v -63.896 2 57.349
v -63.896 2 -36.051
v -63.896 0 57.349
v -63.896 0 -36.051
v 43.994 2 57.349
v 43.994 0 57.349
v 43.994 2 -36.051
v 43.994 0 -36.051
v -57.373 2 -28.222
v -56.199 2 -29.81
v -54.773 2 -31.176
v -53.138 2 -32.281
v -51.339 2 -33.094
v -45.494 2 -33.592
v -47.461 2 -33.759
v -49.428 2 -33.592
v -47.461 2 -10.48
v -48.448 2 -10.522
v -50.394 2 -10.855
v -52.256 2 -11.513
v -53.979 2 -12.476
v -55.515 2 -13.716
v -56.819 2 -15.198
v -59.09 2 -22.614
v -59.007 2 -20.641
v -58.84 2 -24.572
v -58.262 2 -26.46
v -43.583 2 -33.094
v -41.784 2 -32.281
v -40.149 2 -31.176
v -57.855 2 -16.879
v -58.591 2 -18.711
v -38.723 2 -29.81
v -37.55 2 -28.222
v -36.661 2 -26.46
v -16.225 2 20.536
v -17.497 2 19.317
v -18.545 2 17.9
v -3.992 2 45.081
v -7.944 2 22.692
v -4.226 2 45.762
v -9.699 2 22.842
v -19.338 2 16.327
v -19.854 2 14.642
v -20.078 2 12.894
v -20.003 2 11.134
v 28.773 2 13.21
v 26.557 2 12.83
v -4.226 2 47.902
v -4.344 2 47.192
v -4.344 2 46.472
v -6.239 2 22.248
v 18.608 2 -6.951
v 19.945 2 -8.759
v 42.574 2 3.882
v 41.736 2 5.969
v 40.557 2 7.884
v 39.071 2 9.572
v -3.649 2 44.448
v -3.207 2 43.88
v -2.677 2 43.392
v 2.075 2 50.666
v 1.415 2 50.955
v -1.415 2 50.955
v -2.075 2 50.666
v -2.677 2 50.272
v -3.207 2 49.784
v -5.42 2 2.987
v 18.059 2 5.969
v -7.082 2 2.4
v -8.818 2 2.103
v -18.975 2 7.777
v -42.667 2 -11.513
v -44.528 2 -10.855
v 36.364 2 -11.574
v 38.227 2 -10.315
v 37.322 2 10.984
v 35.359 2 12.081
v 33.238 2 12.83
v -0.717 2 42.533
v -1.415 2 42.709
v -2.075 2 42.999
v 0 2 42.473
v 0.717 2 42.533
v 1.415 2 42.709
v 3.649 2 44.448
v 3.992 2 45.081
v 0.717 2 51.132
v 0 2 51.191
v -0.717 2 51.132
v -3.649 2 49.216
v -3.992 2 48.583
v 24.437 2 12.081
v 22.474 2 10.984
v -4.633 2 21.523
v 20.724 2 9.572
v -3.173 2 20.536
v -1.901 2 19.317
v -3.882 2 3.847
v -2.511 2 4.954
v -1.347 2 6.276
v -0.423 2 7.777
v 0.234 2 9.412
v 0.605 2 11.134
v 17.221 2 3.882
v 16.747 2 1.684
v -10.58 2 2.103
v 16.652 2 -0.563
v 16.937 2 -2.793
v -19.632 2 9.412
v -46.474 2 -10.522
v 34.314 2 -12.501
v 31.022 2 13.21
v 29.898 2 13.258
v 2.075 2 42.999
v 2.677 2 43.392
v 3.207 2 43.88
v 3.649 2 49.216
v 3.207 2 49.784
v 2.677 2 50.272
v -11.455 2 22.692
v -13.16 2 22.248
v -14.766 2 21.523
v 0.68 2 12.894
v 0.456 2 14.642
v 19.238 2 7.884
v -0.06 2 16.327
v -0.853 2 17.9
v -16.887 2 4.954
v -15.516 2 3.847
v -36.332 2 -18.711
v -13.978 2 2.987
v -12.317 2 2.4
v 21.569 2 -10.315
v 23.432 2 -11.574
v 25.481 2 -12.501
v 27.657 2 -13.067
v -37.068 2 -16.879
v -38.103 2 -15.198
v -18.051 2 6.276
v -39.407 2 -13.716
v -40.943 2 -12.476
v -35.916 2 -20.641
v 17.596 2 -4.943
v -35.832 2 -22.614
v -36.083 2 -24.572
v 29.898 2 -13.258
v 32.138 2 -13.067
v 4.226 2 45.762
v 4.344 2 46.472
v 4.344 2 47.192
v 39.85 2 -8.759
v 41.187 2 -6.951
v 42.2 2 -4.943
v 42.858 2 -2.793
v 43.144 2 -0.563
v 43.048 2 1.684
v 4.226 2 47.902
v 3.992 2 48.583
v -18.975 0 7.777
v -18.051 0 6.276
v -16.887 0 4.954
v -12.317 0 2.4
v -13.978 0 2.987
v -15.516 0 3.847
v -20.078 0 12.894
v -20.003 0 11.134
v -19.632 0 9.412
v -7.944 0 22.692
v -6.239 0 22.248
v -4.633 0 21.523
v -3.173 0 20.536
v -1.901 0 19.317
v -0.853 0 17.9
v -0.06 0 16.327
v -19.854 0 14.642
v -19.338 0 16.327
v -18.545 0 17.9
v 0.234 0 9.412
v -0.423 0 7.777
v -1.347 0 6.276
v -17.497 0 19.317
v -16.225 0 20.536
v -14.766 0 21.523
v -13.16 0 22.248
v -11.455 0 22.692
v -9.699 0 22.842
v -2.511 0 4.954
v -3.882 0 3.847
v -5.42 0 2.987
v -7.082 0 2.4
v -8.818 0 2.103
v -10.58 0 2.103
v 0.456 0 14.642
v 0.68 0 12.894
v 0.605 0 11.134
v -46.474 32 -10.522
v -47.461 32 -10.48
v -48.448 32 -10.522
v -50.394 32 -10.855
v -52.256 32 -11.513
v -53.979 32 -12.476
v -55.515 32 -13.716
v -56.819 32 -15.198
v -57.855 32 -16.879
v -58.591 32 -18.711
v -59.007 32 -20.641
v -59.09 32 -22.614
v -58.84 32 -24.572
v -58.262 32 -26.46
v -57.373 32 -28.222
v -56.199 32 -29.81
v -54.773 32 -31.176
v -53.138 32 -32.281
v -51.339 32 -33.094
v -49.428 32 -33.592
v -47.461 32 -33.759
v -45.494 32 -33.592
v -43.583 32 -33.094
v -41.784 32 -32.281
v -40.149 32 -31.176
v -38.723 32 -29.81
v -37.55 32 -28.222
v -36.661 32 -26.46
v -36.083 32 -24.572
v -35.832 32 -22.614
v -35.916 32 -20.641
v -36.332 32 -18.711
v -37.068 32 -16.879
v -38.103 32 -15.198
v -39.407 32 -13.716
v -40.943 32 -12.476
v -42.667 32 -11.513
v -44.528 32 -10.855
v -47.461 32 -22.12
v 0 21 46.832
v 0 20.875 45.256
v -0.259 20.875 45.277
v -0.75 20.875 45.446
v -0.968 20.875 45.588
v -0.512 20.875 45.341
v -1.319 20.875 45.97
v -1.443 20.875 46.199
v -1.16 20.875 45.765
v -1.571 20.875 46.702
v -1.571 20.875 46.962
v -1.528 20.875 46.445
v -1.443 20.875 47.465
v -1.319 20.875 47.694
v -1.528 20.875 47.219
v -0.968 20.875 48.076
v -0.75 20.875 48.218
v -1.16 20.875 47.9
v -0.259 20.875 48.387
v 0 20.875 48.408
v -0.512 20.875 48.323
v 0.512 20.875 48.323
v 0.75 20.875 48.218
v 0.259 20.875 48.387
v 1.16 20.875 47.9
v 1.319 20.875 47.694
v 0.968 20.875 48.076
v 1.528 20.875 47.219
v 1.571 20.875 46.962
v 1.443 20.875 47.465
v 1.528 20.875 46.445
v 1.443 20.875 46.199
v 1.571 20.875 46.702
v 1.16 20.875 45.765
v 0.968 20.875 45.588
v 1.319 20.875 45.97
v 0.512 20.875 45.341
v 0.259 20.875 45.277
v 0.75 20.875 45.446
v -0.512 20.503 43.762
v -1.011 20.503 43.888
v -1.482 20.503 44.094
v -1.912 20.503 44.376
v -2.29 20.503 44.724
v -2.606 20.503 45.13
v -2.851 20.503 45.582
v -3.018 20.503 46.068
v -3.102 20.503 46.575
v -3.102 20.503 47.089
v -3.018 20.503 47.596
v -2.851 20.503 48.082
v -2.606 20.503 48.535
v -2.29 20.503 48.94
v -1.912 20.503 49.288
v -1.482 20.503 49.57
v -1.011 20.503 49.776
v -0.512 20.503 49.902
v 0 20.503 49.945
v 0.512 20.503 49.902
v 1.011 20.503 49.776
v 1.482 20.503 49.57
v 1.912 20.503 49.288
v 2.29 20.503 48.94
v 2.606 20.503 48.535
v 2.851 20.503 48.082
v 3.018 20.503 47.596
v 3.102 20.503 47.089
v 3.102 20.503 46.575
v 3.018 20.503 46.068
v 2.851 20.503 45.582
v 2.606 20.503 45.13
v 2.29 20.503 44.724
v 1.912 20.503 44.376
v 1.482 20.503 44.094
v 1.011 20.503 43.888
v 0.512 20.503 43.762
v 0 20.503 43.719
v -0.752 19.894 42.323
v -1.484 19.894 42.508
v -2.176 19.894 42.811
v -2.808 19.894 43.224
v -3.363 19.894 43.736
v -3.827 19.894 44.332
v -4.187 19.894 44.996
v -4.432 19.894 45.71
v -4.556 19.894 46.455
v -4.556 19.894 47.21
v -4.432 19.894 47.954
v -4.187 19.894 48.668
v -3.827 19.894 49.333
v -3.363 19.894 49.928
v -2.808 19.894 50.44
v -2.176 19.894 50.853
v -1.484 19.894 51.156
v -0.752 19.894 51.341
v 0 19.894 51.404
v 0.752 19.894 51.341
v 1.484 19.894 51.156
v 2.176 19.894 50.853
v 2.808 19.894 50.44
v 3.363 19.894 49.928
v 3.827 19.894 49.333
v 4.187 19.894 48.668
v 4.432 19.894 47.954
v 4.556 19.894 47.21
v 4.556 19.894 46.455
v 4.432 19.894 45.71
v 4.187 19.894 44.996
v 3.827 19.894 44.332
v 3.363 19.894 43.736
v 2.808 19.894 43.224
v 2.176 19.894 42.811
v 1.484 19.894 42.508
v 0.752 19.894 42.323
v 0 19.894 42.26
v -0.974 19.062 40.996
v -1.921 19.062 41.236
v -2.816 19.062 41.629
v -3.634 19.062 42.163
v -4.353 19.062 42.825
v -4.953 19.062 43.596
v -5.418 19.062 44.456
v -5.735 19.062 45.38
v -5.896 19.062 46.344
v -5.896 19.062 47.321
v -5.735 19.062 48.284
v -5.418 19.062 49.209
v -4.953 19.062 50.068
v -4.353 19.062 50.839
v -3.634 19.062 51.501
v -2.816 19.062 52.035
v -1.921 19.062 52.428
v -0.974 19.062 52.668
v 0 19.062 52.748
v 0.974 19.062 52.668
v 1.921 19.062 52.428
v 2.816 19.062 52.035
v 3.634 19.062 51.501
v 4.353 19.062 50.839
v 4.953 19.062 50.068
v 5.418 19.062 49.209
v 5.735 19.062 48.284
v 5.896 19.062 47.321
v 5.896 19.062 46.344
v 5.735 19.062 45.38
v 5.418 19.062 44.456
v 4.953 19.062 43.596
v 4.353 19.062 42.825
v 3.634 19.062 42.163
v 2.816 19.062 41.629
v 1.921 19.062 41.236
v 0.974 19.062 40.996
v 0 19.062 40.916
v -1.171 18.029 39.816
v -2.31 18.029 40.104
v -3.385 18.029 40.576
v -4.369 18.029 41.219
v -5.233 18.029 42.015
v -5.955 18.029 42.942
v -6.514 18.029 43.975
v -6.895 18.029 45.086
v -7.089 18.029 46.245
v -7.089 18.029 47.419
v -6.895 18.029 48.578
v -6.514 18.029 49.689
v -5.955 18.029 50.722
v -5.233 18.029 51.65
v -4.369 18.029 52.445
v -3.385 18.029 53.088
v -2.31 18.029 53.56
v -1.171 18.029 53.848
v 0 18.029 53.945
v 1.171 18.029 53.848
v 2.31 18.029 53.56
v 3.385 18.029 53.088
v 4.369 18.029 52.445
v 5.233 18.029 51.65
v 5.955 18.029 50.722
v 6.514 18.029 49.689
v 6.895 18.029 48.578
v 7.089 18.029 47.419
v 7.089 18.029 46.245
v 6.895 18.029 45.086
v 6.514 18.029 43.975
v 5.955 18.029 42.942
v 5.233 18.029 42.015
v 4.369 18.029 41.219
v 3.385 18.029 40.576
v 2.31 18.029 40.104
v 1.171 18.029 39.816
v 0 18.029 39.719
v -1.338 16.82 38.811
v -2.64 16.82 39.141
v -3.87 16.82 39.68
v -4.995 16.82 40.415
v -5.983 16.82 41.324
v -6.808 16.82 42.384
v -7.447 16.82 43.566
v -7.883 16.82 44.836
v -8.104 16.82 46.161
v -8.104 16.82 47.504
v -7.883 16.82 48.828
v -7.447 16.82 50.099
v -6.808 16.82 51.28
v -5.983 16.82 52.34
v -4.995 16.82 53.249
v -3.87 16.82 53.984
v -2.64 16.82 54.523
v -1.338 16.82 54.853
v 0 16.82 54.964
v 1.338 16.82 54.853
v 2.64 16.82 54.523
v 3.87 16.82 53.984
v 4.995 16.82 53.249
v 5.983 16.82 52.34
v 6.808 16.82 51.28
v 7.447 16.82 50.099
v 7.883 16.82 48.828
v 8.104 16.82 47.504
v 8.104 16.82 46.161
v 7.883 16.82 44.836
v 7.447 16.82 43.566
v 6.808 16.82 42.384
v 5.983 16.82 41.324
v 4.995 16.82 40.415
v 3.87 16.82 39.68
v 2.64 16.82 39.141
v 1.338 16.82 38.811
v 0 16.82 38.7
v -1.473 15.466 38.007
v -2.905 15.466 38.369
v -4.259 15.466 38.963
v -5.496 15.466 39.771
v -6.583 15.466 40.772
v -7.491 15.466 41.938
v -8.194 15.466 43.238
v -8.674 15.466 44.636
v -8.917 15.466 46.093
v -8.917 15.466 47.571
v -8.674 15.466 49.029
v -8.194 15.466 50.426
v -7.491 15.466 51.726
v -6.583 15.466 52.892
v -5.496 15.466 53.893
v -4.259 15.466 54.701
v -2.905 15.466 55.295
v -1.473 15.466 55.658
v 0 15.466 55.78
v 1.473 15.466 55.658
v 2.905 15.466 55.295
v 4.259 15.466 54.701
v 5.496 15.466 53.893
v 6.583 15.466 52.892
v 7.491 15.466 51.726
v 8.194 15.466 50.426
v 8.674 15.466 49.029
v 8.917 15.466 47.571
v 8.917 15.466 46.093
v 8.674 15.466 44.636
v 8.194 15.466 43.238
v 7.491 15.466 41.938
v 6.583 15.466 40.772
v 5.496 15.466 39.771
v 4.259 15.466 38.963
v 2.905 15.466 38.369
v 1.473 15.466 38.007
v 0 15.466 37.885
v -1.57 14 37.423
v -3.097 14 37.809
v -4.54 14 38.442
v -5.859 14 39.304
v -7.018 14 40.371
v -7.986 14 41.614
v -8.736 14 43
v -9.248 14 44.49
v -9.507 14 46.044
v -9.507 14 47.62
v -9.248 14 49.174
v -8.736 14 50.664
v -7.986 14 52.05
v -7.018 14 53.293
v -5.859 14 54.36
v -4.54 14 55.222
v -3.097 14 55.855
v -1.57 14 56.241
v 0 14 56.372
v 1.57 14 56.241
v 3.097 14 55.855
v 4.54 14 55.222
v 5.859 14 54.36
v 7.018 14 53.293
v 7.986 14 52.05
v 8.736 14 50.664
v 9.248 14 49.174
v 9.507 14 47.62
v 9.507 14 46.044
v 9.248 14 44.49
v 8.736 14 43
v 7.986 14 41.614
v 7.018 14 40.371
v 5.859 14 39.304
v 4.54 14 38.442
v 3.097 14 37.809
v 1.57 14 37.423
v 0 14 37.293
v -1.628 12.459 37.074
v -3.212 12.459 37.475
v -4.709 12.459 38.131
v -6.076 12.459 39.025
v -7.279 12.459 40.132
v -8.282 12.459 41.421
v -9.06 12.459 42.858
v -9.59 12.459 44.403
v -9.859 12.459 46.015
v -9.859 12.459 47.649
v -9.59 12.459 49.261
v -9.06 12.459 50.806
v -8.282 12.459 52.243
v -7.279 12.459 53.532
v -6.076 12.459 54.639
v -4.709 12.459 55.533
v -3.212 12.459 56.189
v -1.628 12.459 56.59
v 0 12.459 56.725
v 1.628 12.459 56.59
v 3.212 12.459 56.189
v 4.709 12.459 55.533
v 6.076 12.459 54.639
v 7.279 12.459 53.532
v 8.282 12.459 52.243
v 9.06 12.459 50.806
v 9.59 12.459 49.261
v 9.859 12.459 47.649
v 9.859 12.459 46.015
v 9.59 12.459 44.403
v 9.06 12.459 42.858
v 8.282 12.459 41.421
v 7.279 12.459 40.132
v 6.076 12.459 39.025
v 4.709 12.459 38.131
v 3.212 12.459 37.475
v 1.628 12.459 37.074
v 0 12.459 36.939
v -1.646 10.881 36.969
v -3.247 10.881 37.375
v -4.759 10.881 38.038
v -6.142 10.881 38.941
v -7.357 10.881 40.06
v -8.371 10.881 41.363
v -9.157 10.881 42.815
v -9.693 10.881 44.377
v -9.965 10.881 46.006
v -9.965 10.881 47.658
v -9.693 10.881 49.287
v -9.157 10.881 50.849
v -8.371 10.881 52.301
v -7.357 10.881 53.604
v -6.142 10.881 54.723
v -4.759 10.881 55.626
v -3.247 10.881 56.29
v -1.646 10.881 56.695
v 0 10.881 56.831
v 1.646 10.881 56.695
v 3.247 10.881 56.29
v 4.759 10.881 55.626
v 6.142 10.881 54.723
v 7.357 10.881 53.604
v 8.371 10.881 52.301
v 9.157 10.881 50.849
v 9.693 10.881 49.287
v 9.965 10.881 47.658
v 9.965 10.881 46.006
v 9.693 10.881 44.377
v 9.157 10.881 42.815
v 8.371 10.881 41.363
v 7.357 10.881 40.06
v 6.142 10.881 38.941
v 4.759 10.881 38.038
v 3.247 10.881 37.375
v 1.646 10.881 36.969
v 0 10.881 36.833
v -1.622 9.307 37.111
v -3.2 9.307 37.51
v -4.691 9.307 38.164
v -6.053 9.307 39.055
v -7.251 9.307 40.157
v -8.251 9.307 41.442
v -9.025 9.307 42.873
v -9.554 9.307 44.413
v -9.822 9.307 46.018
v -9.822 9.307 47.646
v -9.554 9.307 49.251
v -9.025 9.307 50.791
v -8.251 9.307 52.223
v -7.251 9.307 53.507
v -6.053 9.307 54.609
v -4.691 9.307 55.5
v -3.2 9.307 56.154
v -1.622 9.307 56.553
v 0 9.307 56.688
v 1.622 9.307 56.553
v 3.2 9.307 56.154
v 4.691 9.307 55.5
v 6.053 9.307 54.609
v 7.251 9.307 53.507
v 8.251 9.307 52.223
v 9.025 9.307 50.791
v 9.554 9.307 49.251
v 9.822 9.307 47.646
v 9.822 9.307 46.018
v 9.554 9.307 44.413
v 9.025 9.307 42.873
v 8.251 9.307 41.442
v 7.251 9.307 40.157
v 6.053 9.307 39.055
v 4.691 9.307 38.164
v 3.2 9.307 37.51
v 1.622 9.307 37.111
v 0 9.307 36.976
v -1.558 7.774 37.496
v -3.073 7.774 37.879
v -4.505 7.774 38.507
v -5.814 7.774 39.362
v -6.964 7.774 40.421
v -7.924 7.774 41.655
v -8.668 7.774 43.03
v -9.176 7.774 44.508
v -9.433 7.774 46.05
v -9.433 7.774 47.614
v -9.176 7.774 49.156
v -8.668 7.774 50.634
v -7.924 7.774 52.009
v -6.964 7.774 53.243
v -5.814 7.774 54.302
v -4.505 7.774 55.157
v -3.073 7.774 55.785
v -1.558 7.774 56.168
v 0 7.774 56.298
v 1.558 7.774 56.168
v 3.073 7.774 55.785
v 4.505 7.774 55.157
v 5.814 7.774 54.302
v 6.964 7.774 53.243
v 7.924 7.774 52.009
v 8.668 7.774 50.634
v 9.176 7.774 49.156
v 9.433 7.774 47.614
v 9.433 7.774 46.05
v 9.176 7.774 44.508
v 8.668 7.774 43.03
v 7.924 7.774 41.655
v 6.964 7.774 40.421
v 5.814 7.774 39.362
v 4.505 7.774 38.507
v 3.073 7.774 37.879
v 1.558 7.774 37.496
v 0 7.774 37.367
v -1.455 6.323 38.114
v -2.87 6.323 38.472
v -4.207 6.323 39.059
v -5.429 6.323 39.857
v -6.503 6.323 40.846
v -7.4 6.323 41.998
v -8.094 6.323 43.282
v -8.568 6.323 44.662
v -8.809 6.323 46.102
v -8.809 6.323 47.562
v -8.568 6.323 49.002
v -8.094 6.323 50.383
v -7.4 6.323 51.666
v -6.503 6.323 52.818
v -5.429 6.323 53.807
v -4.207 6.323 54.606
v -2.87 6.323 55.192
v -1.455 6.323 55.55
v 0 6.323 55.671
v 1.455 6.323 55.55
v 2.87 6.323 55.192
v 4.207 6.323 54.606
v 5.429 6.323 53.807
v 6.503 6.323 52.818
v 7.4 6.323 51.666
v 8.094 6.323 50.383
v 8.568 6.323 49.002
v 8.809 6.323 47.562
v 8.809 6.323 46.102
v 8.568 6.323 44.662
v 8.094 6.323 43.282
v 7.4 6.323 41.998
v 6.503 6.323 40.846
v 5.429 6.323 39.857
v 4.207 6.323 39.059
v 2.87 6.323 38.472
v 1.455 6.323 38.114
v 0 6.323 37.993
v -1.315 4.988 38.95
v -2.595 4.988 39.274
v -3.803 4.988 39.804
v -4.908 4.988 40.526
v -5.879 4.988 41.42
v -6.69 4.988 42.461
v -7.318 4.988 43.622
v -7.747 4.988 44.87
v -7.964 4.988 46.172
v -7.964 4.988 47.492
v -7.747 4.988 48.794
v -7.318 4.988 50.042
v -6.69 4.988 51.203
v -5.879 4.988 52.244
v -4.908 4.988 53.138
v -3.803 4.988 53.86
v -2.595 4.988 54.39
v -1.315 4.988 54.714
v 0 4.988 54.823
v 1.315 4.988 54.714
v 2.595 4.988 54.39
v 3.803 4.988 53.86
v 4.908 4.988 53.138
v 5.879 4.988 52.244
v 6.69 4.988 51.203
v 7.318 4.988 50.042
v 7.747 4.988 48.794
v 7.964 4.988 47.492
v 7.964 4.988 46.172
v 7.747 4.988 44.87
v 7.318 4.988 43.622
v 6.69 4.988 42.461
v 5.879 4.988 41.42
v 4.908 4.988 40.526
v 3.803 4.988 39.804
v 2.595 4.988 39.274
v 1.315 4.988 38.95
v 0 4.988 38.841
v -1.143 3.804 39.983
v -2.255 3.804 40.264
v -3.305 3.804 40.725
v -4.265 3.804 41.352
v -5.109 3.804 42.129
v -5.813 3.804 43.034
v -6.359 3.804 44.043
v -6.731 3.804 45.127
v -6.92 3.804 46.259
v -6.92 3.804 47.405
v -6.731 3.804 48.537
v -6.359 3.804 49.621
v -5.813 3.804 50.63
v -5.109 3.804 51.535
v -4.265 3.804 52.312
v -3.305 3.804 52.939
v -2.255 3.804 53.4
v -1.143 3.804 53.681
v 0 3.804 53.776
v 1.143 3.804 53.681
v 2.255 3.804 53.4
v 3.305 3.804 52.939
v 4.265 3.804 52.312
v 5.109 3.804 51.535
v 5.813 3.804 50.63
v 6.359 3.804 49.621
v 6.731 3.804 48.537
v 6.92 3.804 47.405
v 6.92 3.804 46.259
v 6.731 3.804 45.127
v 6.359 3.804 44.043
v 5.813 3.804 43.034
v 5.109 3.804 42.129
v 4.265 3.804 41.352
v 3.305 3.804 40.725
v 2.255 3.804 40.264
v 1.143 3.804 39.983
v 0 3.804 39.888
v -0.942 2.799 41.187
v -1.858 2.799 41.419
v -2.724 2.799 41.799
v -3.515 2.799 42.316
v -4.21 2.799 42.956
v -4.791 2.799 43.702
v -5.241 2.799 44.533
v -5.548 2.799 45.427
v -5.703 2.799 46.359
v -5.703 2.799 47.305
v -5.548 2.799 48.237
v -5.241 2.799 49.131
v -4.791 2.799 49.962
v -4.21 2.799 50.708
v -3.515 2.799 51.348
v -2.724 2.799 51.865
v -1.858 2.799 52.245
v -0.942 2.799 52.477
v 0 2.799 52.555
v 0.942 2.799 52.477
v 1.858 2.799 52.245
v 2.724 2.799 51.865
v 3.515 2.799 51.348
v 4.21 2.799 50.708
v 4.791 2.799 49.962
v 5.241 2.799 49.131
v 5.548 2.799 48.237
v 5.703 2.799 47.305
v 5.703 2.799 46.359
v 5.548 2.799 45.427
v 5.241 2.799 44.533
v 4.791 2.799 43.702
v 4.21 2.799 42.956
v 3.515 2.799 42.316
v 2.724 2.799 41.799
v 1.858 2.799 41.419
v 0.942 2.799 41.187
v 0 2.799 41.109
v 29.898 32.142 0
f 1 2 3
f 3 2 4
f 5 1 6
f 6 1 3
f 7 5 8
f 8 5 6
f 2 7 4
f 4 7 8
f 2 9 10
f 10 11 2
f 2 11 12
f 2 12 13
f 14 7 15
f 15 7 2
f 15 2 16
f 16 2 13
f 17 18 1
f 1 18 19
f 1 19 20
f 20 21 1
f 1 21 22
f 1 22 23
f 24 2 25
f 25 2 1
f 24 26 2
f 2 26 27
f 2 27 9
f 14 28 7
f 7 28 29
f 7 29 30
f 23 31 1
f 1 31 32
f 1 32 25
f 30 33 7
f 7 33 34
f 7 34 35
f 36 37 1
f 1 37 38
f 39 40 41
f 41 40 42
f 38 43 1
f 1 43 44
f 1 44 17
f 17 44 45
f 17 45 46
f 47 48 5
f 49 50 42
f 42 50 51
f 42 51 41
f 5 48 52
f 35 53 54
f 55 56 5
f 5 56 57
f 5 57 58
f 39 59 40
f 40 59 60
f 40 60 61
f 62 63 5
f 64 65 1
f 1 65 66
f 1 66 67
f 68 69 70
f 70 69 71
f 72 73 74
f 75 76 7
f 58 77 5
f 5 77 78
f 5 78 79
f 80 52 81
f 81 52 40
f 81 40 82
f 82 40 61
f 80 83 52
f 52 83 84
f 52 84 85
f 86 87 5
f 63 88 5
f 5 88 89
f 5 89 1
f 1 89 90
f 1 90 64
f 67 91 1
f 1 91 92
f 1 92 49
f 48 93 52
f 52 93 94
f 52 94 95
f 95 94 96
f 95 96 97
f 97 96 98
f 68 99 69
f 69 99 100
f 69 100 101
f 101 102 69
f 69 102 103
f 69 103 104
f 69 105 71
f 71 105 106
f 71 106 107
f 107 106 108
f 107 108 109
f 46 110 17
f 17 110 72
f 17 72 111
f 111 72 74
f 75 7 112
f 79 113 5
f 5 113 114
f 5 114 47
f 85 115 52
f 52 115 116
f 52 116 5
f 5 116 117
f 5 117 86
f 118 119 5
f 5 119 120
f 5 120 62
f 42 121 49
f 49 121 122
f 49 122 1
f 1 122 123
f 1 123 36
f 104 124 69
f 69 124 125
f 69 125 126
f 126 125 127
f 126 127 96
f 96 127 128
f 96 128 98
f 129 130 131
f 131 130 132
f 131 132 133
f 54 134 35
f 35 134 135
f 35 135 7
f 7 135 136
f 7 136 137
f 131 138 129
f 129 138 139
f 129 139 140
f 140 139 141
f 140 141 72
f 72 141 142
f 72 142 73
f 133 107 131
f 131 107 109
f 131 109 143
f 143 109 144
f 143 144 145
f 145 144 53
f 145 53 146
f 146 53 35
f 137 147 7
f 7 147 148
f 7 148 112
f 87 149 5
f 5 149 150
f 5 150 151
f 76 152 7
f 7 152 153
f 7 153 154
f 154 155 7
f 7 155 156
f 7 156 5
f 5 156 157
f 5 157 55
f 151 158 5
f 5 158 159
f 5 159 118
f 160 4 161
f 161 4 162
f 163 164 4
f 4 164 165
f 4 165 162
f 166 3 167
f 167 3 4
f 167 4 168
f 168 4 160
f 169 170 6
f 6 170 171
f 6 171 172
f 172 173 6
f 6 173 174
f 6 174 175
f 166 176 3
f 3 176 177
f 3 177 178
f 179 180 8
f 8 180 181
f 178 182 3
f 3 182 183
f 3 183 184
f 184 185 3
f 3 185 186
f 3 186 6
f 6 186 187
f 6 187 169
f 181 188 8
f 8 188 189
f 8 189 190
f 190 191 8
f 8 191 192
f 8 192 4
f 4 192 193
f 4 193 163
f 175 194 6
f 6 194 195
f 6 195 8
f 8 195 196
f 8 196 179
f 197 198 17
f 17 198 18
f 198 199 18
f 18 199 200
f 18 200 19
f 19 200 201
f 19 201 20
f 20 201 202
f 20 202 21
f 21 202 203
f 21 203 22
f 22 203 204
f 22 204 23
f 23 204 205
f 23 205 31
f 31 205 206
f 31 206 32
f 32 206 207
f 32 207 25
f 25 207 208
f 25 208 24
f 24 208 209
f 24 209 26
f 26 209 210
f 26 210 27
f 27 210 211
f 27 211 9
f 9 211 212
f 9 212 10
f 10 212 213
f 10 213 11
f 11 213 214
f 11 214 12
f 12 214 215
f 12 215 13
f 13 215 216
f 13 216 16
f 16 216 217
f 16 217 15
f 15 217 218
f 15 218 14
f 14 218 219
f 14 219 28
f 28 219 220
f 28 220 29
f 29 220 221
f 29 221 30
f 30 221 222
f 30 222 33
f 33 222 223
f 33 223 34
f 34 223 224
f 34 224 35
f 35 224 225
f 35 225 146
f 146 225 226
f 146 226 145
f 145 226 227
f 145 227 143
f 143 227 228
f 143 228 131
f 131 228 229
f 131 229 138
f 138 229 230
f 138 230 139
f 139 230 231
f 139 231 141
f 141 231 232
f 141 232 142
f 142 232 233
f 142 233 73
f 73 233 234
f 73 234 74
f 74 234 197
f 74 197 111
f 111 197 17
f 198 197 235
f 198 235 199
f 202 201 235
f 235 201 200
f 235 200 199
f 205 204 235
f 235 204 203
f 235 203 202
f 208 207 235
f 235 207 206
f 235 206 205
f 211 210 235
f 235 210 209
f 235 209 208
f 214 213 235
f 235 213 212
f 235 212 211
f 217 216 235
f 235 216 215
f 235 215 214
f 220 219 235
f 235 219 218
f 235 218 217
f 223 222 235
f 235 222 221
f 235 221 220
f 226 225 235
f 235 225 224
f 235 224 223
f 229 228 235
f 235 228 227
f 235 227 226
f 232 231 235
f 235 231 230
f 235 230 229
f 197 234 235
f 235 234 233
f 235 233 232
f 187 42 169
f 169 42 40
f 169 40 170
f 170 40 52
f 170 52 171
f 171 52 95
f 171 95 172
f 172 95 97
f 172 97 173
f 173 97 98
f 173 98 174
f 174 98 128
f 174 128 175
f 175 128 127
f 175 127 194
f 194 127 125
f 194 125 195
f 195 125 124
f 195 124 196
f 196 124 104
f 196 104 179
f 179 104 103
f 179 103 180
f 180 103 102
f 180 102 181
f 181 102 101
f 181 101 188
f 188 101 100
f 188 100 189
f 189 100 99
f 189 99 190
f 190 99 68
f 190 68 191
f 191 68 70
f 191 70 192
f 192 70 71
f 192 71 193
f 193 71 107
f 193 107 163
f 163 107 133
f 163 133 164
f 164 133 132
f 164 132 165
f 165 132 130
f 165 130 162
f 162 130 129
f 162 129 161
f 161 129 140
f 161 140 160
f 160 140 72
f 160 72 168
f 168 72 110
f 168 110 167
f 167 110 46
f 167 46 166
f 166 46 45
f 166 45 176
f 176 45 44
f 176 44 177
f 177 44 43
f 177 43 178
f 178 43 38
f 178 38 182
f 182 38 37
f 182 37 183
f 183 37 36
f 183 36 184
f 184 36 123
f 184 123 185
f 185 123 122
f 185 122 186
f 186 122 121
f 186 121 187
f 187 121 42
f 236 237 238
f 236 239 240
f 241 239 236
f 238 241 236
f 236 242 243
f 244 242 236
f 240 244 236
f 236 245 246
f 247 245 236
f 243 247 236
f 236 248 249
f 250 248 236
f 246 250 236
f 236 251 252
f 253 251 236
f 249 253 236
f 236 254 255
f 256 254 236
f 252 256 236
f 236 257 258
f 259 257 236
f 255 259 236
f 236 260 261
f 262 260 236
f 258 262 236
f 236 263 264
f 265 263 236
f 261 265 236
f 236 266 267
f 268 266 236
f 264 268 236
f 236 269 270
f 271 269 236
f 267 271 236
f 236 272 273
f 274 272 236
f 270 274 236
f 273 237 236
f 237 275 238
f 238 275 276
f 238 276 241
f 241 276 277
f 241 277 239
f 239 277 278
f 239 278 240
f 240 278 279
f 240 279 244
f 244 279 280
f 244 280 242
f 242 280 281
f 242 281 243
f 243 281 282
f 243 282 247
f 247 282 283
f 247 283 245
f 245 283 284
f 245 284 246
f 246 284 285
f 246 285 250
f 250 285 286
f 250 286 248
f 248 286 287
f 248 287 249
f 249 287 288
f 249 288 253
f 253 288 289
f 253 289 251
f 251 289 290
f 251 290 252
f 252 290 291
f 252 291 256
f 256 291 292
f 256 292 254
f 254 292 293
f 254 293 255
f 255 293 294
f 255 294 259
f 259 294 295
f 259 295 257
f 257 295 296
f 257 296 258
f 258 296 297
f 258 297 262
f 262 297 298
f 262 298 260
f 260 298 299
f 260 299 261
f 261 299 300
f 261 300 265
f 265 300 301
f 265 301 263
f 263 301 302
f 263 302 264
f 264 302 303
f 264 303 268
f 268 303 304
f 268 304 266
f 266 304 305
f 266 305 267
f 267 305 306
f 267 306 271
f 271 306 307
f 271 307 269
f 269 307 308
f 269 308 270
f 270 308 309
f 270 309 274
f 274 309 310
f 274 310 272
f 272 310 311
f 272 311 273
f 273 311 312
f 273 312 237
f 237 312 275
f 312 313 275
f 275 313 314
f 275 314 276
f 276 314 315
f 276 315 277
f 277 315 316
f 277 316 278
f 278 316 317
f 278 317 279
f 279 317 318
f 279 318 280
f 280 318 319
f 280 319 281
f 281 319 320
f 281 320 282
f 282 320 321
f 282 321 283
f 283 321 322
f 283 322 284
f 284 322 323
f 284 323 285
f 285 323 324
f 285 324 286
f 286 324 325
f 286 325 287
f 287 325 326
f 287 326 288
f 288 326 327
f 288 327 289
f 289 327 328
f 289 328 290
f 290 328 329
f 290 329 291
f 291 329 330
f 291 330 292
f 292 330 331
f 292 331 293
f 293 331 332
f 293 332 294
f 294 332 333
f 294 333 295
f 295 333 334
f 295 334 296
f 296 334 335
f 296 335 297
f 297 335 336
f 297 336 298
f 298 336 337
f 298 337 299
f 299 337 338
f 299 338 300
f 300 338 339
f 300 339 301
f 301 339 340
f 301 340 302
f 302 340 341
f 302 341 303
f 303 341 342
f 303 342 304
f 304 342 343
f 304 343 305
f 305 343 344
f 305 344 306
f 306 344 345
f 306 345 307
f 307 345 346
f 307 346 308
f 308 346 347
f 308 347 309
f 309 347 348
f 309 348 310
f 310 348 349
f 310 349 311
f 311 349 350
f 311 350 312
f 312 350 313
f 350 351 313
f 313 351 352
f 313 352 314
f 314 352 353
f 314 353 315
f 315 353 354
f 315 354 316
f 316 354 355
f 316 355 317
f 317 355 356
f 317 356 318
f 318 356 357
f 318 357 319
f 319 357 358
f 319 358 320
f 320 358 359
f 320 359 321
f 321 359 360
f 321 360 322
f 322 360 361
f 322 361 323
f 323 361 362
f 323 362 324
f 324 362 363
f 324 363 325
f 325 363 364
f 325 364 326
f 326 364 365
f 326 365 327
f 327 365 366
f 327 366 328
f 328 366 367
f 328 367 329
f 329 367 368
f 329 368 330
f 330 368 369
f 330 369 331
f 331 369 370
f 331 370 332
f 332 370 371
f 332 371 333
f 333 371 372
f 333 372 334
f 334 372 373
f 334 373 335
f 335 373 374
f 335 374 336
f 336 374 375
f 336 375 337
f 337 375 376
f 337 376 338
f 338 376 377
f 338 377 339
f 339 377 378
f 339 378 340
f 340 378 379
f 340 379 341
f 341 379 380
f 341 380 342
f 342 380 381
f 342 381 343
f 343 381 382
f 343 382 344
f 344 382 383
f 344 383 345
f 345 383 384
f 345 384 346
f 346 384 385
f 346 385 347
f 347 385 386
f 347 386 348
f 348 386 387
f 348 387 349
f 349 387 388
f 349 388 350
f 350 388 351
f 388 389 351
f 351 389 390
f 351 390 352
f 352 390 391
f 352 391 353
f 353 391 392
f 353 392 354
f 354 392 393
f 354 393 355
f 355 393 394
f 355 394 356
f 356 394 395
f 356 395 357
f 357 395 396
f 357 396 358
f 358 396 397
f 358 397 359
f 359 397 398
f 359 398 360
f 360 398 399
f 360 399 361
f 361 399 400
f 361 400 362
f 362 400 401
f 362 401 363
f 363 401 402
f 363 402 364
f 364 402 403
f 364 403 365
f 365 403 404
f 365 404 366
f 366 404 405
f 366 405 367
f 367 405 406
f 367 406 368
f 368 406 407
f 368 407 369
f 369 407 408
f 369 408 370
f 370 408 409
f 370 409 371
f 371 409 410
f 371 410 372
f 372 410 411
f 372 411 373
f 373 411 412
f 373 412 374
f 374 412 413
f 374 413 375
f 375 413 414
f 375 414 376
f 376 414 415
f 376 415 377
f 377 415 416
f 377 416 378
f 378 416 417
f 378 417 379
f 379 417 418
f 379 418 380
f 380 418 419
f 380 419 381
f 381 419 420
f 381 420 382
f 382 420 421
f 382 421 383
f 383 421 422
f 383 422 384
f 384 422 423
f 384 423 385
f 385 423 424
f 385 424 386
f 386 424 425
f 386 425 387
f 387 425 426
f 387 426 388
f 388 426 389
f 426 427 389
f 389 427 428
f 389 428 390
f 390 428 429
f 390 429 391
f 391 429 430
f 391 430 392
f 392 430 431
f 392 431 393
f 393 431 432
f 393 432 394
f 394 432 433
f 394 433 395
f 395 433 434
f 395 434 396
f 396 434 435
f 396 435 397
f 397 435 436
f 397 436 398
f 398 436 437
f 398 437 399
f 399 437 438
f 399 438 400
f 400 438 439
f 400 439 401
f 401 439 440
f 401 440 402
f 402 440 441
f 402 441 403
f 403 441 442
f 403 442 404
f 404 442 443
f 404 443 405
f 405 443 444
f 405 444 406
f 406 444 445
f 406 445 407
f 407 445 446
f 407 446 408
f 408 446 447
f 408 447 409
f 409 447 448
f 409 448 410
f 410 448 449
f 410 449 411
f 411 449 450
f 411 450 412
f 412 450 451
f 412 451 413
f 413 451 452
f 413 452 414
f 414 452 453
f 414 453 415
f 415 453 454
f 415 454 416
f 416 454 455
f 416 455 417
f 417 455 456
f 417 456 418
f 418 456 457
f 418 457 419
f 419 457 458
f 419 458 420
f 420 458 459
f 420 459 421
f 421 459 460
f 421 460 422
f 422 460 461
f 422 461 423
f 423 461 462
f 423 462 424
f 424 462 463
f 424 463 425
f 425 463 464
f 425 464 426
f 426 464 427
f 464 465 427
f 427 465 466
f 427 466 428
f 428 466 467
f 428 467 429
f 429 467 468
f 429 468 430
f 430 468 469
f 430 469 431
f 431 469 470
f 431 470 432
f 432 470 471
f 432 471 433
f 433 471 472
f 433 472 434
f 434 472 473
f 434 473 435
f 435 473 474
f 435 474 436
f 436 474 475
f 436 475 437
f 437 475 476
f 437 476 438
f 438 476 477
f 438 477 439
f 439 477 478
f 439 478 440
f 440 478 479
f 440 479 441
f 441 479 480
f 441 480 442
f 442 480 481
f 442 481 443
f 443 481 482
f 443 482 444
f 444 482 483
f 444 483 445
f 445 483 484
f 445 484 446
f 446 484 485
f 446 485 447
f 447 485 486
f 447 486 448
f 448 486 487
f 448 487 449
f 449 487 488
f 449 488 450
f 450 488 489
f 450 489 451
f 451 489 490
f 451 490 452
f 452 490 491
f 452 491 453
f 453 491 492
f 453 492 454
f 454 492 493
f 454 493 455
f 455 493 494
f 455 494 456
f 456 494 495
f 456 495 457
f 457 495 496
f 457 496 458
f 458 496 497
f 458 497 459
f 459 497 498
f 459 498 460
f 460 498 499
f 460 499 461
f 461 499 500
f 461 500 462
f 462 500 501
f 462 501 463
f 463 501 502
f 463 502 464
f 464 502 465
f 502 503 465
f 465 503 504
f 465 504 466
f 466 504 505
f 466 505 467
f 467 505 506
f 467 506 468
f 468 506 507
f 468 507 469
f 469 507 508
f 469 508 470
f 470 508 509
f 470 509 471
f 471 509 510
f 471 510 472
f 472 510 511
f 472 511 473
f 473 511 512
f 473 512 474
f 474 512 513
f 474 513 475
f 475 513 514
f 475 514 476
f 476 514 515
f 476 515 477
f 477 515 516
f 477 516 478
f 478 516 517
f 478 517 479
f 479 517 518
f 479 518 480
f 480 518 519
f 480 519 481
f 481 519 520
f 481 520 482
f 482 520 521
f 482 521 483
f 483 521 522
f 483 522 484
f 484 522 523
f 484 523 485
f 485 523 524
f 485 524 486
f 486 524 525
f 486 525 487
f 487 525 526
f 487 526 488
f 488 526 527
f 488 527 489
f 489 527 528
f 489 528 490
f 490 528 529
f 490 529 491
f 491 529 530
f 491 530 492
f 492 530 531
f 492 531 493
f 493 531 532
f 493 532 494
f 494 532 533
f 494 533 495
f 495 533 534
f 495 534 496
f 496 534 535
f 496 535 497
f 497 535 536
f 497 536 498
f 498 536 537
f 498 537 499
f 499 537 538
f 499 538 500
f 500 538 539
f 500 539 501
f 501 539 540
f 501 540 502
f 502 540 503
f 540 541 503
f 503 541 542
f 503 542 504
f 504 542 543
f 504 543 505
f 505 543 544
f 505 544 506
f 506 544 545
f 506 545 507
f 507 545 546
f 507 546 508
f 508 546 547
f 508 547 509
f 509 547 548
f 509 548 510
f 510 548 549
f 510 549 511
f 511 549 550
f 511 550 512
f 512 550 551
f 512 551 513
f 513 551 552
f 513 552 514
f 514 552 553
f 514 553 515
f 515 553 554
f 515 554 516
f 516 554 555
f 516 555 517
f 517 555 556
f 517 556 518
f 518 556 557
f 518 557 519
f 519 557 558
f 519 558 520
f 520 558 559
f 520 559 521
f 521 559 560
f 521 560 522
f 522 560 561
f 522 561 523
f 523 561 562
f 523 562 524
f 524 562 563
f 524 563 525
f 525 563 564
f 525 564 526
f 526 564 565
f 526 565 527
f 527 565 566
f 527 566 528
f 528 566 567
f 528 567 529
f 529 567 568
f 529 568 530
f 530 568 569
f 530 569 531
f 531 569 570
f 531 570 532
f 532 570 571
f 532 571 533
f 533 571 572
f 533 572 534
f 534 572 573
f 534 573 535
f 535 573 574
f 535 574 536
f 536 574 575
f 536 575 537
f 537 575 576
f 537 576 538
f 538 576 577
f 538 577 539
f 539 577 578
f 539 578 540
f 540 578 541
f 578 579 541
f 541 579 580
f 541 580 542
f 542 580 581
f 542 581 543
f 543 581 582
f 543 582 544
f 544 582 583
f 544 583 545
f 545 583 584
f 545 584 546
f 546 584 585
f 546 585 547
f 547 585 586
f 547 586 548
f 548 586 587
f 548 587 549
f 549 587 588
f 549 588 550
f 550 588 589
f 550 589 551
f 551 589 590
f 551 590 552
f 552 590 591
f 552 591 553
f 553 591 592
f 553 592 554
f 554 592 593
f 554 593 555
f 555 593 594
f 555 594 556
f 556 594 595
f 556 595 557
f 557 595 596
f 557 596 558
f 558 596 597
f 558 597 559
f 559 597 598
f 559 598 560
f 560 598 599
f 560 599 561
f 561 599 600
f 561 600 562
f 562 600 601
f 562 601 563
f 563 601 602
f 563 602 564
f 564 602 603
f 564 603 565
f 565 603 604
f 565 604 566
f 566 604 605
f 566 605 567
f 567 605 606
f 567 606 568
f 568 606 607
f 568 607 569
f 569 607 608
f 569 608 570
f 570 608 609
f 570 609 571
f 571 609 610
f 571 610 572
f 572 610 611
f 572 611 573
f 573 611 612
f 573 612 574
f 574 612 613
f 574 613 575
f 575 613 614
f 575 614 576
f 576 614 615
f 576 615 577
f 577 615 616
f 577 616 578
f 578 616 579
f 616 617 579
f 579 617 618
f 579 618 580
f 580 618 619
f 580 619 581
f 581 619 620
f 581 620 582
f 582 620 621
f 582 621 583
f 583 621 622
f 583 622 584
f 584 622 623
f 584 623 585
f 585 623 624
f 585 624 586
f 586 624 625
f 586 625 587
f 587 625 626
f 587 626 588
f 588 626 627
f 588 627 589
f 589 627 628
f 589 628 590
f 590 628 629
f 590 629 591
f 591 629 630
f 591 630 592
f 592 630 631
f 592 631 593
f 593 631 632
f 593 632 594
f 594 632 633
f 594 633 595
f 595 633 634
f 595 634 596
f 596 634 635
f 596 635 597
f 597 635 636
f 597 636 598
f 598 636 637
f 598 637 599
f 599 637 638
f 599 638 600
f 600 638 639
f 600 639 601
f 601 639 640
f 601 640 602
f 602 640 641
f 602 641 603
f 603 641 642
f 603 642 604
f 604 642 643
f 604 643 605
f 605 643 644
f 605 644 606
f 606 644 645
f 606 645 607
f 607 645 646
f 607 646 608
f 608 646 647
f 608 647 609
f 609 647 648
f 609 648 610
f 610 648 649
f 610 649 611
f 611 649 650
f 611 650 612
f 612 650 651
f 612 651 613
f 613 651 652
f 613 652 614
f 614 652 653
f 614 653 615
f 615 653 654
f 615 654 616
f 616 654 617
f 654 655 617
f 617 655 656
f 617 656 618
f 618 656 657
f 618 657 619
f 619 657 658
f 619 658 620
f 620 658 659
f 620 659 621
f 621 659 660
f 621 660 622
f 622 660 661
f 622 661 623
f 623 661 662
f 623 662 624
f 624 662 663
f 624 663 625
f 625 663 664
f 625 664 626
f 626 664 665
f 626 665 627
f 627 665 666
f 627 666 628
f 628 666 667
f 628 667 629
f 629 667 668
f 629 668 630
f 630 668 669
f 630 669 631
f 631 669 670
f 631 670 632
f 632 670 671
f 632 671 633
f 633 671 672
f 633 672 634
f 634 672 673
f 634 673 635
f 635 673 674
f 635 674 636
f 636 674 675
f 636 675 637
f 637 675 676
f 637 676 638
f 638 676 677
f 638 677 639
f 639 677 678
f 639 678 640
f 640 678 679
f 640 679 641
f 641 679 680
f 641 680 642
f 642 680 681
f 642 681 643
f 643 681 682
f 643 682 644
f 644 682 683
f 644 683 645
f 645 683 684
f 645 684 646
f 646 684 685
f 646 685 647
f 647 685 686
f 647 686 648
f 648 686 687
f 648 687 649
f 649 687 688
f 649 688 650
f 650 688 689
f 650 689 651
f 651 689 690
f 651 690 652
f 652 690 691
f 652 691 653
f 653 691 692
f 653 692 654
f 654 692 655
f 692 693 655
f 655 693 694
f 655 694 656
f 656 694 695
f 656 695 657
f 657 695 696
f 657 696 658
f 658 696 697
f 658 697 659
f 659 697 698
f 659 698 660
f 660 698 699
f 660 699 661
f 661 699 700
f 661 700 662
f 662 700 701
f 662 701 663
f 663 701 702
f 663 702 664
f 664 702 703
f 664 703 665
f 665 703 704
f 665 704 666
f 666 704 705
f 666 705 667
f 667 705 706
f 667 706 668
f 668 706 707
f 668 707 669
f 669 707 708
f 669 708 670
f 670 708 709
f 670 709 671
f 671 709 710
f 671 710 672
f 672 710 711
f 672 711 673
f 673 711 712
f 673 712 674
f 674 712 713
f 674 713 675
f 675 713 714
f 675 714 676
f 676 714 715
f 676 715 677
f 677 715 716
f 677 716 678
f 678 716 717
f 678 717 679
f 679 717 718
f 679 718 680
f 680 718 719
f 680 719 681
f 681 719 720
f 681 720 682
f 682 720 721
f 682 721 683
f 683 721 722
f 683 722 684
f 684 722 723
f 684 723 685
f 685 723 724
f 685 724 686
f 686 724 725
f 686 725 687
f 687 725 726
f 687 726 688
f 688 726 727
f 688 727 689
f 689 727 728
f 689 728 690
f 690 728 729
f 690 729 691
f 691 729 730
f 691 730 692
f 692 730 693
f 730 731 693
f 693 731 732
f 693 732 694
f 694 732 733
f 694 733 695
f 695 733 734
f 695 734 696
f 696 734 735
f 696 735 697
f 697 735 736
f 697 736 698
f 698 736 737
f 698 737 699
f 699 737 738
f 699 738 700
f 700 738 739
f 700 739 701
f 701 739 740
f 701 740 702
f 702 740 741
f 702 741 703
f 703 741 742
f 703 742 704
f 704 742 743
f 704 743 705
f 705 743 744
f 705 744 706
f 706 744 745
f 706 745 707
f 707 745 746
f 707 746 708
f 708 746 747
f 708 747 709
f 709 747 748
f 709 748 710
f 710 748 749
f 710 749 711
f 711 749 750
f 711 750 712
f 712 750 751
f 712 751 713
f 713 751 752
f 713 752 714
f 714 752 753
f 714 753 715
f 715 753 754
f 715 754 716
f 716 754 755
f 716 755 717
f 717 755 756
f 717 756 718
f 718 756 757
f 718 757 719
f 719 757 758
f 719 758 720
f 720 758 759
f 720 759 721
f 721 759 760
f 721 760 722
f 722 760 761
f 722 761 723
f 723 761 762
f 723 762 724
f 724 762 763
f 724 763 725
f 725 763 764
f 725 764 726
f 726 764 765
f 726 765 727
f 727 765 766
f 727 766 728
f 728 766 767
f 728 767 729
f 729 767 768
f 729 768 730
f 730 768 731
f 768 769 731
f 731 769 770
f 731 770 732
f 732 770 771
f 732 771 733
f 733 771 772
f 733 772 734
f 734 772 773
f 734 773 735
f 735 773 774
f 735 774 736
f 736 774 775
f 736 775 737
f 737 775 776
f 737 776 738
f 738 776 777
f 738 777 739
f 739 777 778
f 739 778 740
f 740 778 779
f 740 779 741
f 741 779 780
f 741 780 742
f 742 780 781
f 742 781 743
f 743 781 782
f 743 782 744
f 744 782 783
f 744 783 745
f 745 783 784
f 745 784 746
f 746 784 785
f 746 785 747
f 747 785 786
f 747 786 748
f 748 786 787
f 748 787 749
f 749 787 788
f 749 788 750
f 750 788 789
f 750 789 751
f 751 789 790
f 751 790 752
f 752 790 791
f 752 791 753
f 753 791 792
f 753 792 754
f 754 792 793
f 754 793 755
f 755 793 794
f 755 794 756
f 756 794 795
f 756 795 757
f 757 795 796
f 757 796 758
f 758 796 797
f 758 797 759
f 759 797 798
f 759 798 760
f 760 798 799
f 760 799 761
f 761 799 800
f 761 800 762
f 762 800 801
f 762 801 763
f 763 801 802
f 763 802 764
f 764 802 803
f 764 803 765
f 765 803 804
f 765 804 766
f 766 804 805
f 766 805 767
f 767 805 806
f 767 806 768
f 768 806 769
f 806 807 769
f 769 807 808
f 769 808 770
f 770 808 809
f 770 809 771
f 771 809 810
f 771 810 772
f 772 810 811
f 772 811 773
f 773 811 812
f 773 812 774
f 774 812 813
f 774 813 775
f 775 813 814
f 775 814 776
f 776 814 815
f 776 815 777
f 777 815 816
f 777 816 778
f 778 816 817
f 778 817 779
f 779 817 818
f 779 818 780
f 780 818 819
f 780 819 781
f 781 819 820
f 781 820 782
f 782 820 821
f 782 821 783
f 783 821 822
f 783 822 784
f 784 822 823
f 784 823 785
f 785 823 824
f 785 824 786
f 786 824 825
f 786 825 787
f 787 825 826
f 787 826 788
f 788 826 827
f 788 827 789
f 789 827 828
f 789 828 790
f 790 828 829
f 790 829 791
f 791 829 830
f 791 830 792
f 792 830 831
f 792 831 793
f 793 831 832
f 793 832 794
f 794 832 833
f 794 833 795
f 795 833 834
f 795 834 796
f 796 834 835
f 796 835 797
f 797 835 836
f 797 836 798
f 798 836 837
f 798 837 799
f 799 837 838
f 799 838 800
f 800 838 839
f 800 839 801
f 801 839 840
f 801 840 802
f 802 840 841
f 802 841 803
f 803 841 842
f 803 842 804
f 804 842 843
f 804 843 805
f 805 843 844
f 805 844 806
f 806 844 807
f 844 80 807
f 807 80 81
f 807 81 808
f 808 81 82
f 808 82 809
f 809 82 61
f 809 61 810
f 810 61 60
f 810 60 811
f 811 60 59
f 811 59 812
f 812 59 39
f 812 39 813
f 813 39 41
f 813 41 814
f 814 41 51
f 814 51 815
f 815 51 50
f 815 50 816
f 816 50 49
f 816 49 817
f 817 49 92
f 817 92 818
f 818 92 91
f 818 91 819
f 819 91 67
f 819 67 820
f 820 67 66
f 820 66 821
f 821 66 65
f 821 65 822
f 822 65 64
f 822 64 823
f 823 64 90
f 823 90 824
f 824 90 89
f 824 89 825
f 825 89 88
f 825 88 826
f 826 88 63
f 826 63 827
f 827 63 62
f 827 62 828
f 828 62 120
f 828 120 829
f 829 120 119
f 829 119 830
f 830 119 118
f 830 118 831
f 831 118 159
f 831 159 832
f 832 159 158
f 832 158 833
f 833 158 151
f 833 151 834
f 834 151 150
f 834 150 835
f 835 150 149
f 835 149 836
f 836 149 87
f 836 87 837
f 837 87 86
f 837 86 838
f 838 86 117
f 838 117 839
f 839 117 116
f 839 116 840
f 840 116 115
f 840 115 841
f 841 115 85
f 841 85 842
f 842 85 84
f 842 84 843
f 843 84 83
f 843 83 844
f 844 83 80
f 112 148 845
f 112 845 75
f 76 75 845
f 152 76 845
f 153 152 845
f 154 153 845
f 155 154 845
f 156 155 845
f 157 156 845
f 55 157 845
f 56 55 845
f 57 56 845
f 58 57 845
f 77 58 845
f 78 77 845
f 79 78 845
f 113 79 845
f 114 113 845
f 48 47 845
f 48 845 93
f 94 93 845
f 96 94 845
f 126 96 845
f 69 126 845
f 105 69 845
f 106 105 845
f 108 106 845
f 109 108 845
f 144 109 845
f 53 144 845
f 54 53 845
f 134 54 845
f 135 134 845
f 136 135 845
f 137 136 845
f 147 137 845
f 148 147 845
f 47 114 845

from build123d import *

# Parameters (mm, degrees)
SKETCH_1_W          = 107.889647592
SKETCH_1_H          = 93.399614016
EXTRUDE_1_DEPTH     = 2
SKETCH_2_R          = 11.639752959
EXTRUDE_2_DEPTH     = 30
SKETCH_3_R          = 10.388227947
CUT_EXTRUDE_1_DEPTH = 30


with BuildPart() as part:
    # 草图1 → 凸台-拉伸1 (new body)
    with BuildSketch(Plane(origin=(0, 0, 0), x_dir=(1, 0, 0), z_dir=(0, 1, 0))):
        with Locations((-9.950986914, -10.649301785)):
            Rectangle(SKETCH_1_W, SKETCH_1_H)
    extrude(amount=EXTRUDE_1_DEPTH)

    # 草图2 → 凸台-拉伸2 (add)
    with BuildSketch(Plane(origin=(0, 2, 0), x_dir=(1, 0, 0), z_dir=(0, 1, 0))):
        with Locations((-47.461132716, 22.11962872)):
            Circle(SKETCH_2_R)
    extrude(amount=EXTRUDE_2_DEPTH)

    # 草图3 → 切除-拉伸1 (cut)
    with BuildSketch(Plane(origin=(0, 2, 0), x_dir=(1, 0, 0), z_dir=(0, 1, 0))):
        with Locations((-9.699240969, -12.453481057)):
            Circle(SKETCH_3_R)
    extrude(amount=-CUT_EXTRUDE_1_DEPTH, mode=Mode.SUBTRACT)

    # 草图6 → 旋转4 (revolve)
    with BuildSketch(Plane(origin=(0, 0, 0), x_dir=(0, 0, -1), z_dir=(1, 0, 0))):
        with BuildLine():
            Line((-46.832059877, 2), (-42.473160934, 2))
            ThreePointArc((-42.473160934, 2), (-37.085265533, 13.236067977), (-46.832059877, 21))
            Line((-46.832059877, 21), (-46.832059877, 2))
        make_face()
    revolve(axis=Axis((0, 24.008191083, 46.832059877), (0, -1, 0)))

    # 草图7 → 旋转5 (revolve)
    with BuildSketch(Plane.XY):
        Polygon((16.639758733, 2), (29.897679802, 32.14170616), (29.897679802, 2), align=None)
    revolve(axis=Axis((29.897679802, 32.14170616, 0), (0, -1, 0)))


solid = part.part
